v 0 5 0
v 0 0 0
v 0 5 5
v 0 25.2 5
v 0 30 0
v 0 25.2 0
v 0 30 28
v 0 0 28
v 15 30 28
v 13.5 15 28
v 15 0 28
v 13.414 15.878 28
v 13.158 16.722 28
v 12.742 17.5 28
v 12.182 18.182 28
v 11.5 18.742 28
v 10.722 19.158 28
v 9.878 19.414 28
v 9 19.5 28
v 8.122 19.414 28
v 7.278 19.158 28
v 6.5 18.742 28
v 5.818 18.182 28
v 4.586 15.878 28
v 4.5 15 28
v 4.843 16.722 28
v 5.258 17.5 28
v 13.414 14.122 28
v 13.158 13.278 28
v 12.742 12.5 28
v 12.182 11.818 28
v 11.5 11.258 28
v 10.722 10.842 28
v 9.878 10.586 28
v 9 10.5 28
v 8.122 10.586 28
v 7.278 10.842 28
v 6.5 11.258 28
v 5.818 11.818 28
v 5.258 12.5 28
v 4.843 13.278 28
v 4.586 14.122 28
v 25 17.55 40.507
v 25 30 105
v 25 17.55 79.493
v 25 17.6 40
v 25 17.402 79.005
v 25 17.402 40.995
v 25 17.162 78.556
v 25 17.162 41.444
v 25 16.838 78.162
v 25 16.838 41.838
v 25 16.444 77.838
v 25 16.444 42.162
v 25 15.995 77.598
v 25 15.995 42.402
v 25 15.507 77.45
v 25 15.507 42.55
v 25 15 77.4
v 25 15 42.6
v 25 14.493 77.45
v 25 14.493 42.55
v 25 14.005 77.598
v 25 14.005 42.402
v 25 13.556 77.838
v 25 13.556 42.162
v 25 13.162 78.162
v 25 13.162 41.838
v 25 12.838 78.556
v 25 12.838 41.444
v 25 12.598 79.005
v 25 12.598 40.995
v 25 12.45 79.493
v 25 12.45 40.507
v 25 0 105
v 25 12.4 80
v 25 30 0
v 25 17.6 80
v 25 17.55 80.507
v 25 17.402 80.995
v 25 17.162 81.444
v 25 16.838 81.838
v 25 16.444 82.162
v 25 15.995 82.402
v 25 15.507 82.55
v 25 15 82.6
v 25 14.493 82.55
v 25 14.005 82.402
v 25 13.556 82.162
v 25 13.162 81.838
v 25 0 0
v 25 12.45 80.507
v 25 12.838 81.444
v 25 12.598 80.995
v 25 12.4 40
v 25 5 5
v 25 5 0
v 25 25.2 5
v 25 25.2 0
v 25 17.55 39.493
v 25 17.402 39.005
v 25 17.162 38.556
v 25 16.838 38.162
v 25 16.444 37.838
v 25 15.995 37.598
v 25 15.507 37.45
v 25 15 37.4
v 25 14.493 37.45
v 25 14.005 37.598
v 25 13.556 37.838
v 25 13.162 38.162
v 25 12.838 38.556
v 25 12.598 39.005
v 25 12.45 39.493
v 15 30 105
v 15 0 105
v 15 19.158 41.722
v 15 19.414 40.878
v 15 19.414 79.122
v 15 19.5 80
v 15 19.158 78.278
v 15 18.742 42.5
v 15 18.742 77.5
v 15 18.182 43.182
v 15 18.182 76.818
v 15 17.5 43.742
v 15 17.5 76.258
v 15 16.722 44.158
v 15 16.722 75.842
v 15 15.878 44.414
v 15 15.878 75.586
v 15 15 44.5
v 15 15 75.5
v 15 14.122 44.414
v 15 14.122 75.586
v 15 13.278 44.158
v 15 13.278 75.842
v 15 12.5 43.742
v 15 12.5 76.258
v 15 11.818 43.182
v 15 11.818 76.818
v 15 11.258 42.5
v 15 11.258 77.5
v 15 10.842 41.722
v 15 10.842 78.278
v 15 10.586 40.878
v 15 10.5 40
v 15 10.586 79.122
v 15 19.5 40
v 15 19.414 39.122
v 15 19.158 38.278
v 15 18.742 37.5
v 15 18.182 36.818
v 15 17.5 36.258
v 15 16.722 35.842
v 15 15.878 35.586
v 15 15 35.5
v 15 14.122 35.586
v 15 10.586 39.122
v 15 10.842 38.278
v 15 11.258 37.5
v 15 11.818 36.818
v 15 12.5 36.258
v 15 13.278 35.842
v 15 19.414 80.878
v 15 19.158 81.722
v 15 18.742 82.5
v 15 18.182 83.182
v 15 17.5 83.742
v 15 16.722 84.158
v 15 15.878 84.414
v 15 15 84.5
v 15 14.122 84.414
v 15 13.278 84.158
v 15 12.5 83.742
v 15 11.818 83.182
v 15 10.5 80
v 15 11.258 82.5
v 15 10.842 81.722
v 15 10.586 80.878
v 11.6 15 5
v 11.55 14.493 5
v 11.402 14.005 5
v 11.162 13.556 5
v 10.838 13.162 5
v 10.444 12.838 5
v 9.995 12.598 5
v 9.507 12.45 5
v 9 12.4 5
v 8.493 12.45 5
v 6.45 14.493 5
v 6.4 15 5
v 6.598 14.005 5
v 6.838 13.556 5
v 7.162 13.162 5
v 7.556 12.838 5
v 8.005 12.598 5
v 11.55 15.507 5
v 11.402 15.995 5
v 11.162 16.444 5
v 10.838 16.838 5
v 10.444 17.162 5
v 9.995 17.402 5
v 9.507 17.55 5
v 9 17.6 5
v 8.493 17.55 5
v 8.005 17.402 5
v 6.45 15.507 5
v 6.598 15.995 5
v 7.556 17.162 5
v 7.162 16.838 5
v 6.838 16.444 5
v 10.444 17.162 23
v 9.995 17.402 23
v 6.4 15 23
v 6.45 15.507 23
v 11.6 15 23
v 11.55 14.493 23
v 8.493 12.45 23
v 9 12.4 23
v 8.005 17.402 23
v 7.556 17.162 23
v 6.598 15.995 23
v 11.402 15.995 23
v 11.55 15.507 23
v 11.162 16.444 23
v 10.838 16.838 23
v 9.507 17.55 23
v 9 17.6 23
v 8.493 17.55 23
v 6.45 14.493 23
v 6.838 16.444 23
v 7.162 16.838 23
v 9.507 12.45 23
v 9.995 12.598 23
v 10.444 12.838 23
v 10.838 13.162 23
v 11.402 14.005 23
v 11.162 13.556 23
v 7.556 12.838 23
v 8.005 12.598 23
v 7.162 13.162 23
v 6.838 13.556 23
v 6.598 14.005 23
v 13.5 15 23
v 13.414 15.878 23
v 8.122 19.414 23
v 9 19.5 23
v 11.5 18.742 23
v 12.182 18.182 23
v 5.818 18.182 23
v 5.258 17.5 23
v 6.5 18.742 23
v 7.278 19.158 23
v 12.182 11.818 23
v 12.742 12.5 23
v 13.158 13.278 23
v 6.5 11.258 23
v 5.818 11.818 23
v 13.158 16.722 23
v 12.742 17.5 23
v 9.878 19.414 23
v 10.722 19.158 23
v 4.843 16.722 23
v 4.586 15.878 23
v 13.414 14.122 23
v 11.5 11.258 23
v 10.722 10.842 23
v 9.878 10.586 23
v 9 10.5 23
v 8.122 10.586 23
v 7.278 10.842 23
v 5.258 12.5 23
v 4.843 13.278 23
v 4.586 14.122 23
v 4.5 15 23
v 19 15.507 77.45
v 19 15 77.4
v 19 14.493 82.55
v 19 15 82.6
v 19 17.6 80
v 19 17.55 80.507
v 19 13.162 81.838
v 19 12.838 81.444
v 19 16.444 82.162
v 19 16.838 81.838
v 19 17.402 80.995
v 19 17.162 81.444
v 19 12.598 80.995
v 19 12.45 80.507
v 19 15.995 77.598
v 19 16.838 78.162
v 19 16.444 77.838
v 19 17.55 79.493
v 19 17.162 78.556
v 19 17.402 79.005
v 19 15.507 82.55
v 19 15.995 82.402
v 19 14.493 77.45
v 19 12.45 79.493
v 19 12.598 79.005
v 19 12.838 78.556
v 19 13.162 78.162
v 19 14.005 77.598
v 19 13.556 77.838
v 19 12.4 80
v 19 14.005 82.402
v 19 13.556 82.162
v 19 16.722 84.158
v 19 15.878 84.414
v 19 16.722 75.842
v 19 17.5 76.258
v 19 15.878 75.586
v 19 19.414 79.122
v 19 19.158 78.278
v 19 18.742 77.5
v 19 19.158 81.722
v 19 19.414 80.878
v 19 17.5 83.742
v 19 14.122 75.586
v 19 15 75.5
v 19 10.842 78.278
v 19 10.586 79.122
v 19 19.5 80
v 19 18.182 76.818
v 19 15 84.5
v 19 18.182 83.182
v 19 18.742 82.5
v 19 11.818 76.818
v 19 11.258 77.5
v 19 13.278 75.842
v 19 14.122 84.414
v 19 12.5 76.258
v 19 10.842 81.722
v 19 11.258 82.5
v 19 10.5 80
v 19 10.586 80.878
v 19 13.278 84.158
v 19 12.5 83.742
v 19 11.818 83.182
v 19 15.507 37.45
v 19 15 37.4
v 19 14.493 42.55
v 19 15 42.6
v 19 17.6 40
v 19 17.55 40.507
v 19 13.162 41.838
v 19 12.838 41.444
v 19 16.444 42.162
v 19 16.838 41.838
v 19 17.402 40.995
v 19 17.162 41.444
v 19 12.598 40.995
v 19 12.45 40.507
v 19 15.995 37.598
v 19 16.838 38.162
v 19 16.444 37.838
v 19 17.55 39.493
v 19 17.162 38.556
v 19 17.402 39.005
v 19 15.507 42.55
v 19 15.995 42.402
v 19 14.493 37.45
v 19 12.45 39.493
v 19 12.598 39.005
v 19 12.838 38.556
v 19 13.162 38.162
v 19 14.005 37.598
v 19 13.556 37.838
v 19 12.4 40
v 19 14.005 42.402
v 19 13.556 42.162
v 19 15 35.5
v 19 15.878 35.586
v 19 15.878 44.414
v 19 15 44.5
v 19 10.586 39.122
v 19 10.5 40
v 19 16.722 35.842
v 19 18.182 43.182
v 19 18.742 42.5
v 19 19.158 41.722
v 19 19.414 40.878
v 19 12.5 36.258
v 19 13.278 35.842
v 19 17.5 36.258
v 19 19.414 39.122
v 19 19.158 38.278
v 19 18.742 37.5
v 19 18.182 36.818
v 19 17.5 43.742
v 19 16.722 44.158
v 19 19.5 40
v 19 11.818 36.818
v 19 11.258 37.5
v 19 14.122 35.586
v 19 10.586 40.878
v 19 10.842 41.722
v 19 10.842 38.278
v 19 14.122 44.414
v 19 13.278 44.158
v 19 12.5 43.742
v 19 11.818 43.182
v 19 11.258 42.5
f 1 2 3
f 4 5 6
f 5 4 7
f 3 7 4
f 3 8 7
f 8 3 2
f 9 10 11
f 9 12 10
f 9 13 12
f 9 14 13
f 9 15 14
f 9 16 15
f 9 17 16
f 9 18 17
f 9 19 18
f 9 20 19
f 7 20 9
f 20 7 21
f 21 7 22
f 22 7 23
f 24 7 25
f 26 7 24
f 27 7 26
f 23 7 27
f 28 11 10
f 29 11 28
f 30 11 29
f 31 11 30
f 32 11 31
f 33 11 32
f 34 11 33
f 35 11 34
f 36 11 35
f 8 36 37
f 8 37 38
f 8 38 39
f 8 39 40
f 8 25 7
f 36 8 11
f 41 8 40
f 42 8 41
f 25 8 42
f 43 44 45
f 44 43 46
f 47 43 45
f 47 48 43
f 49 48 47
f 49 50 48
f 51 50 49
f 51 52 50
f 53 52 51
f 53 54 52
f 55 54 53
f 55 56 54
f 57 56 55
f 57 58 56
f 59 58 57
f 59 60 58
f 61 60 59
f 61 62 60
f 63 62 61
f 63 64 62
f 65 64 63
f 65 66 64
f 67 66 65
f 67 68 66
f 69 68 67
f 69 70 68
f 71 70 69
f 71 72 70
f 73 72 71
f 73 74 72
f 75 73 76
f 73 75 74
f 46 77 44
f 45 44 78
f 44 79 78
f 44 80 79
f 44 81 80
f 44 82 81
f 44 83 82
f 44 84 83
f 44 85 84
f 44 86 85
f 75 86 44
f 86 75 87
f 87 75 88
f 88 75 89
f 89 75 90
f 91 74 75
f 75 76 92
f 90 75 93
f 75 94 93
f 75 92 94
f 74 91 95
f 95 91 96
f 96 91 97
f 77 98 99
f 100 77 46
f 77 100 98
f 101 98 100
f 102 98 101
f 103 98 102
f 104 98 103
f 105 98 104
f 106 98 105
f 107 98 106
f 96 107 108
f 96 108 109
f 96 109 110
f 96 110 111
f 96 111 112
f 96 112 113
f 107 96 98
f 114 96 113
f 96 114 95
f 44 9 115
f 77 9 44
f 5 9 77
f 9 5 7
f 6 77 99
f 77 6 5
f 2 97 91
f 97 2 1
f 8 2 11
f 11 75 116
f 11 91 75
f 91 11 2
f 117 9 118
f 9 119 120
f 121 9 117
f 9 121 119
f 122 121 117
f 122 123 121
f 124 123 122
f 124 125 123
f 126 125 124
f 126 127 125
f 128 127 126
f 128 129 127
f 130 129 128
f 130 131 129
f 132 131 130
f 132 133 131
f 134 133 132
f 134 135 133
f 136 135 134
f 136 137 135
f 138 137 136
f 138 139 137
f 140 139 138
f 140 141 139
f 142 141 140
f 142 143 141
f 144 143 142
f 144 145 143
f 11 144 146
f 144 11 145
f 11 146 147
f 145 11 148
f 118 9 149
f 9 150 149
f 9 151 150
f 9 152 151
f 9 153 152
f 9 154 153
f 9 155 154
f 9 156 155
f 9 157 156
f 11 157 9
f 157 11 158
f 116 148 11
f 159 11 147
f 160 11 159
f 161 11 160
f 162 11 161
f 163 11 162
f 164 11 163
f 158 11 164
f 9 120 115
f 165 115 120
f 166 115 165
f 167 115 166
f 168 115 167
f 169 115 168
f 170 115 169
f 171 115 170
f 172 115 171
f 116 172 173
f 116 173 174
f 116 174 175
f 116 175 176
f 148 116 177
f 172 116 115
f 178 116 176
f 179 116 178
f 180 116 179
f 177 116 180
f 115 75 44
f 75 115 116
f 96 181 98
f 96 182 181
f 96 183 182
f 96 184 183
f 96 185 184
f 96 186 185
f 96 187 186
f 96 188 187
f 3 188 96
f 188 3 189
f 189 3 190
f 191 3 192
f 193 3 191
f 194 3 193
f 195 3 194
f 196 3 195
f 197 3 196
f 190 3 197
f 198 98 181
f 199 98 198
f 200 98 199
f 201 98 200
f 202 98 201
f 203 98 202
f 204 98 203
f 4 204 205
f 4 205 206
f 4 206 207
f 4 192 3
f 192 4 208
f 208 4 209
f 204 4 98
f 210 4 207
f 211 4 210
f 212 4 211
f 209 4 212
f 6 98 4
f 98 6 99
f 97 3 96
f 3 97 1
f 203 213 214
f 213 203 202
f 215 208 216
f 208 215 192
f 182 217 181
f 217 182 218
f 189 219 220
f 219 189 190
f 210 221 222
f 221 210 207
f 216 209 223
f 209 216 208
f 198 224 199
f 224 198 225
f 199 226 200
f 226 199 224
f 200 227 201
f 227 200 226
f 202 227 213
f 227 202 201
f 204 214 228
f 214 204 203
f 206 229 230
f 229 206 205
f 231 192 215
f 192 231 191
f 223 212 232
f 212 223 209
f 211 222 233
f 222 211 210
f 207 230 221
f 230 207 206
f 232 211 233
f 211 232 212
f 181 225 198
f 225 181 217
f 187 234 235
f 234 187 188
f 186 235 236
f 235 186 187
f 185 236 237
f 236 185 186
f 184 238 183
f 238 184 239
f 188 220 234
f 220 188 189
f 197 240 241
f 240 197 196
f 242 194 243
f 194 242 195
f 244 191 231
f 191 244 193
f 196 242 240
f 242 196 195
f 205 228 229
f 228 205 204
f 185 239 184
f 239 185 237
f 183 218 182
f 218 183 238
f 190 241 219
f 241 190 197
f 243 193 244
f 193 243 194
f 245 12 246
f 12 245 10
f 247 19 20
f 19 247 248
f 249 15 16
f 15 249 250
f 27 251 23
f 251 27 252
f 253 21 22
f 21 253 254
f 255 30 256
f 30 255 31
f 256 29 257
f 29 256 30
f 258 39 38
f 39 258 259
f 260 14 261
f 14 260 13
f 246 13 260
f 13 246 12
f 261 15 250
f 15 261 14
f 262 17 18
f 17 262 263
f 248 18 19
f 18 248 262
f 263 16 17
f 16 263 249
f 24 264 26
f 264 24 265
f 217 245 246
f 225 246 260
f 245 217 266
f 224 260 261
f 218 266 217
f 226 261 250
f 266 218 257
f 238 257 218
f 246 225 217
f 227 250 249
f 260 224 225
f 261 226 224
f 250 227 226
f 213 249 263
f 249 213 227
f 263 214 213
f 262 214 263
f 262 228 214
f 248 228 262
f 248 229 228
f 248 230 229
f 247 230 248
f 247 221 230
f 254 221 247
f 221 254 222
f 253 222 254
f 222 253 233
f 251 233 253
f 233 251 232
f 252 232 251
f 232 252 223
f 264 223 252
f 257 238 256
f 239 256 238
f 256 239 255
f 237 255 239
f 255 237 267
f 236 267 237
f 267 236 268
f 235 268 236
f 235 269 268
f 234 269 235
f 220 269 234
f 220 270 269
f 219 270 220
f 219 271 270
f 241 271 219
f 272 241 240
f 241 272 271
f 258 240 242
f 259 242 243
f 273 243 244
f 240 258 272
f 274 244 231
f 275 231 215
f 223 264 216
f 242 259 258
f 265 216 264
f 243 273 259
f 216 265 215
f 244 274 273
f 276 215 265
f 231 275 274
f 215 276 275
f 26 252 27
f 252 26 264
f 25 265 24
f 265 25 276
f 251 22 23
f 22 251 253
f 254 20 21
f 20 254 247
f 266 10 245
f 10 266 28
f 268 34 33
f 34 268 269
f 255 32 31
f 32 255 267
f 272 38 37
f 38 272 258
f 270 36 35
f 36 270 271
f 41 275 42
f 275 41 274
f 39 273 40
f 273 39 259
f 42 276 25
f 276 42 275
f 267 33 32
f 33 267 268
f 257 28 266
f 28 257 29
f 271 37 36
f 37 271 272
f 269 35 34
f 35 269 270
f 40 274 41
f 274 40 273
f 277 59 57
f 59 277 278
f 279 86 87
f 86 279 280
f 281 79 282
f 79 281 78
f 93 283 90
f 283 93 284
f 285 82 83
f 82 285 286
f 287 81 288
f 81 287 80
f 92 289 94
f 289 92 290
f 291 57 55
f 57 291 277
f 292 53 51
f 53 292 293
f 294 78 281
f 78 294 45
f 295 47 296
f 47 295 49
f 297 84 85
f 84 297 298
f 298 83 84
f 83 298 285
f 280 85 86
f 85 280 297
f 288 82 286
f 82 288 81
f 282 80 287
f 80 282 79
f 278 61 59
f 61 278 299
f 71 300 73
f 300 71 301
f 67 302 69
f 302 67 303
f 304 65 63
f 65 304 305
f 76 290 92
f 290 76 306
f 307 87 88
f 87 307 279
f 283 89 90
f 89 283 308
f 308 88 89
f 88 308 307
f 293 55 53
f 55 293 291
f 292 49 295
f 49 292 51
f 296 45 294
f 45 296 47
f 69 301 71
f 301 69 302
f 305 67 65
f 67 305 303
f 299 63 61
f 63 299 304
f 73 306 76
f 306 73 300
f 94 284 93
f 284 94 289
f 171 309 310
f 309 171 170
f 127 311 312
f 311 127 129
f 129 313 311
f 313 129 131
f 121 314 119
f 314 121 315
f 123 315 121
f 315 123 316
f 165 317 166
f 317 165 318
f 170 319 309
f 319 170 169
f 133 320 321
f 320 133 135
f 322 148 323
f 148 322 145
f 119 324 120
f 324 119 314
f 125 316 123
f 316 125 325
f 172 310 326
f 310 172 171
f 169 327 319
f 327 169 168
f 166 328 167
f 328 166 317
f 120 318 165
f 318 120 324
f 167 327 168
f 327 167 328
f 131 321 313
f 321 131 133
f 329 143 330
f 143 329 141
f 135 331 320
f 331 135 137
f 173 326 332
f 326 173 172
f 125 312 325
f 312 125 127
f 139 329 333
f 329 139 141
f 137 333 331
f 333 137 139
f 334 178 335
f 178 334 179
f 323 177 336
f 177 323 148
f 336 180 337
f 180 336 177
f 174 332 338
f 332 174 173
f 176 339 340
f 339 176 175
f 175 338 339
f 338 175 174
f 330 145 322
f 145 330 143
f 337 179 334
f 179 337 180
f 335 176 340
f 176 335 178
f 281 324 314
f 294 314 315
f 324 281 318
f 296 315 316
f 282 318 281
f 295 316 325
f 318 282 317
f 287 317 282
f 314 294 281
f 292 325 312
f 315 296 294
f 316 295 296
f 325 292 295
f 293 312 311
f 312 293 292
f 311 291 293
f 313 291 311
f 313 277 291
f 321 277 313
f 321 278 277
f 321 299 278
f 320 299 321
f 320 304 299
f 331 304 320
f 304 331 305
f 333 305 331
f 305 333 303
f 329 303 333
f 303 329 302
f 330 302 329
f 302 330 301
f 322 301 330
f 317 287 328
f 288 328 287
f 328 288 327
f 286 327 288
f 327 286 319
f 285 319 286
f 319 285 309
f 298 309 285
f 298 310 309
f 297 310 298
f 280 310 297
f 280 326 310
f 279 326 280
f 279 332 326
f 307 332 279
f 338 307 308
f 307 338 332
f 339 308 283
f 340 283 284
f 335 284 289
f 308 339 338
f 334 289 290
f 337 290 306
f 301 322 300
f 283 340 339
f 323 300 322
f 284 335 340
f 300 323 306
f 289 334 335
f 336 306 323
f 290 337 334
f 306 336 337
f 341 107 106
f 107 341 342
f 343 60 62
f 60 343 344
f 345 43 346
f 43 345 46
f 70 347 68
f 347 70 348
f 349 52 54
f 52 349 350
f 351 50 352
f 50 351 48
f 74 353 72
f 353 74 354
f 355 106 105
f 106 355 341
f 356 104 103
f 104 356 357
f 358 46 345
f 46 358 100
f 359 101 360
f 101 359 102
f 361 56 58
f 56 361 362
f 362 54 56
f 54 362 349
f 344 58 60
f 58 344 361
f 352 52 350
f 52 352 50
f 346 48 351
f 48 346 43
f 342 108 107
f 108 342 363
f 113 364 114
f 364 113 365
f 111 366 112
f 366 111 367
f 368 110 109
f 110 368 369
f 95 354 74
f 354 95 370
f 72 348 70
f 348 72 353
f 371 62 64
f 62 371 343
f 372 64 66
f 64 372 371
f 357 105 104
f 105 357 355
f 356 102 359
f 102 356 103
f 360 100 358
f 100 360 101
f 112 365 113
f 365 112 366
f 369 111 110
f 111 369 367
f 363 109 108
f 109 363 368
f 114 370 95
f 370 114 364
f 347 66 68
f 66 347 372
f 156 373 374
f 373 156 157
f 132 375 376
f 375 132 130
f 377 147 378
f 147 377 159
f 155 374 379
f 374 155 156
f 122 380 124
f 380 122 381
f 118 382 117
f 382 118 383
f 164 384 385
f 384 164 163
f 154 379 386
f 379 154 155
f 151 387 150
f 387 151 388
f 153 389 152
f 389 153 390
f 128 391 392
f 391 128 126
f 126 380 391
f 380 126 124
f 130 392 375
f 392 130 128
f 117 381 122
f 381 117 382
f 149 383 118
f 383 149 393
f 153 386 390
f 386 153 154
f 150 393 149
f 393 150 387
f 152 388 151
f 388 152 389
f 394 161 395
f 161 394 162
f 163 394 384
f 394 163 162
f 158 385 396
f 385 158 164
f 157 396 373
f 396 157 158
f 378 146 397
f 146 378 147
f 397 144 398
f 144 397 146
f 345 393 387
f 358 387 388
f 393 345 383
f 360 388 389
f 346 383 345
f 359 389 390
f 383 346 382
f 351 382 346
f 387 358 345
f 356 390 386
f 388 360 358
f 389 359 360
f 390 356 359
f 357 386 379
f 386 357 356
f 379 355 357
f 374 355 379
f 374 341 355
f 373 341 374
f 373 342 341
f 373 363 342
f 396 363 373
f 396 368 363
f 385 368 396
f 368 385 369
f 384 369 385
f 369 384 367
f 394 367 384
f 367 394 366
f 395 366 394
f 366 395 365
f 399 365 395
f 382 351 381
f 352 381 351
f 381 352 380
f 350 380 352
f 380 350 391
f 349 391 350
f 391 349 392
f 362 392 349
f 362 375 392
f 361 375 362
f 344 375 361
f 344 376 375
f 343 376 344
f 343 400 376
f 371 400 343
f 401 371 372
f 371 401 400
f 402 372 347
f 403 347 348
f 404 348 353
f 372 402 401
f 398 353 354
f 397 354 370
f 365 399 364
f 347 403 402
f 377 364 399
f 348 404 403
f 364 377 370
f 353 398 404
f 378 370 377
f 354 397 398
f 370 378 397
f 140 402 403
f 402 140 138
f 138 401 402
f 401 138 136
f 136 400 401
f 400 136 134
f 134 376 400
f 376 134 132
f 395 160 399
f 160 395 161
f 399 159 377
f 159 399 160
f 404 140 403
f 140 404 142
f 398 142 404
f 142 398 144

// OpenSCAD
$fn=32;
//difference(){
//    union(){
//        translate([0,-5,-5])cube([50,30,28]);
//        translate([40,-5,23])cube([10,30,100]);
//        translate([0,-5,23])rotate([0,21.5,0])cube([10,30,150]);
//    };
//    translate([-5,0,-20])cube([60,20,20]);
//    translate([49.999,-10,-5])cube([100,50,200]);
//    translate([0,-10,120])cube([60,40,50]);
//    translate([16,10,-1])cylinder(d=5.2,h=100);
//    translate([16,10,18])cylinder(d=9,h=100);
//    translate([32,10,-1])cylinder(d=5.2,h=100);
//    translate([32,10,18])cylinder(d=9,h=100);
//    translate([0,10,37])rotate([0,90,0])cylinder(d=5.2,h=100);
//    translate([0,10,37])rotate([0,90,0])cylinder(d=9,h=25);
//    translate([0,10,68])rotate([0,90,0])cylinder(d=5.2,h=100);
//    translate([10,10,68])rotate([0,90,0])cylinder(d=9,h=25);
//};
difference(){
    union(){
        cube([25,30,28]);
        translate([15,0,5])cube([10,30,100]);
    };
    translate([-2.5,5,-15])cube([30,20.2,20]);
    translate([9,15,-1])cylinder(d=5.2,h=30);
    translate([9,15,23])cylinder(d=9,h=100);
    translate([0,15,80])rotate([0,90,0])cylinder(d=5.2,h=30);
    translate([14,15,80])rotate([0,90,0])cylinder(d=9,h=5);
    translate([0,15,40])rotate([0,90,0])cylinder(d=5.2,h=30);
    translate([14,15,40])rotate([0,90,0])cylinder(d=9,h=5);
};
